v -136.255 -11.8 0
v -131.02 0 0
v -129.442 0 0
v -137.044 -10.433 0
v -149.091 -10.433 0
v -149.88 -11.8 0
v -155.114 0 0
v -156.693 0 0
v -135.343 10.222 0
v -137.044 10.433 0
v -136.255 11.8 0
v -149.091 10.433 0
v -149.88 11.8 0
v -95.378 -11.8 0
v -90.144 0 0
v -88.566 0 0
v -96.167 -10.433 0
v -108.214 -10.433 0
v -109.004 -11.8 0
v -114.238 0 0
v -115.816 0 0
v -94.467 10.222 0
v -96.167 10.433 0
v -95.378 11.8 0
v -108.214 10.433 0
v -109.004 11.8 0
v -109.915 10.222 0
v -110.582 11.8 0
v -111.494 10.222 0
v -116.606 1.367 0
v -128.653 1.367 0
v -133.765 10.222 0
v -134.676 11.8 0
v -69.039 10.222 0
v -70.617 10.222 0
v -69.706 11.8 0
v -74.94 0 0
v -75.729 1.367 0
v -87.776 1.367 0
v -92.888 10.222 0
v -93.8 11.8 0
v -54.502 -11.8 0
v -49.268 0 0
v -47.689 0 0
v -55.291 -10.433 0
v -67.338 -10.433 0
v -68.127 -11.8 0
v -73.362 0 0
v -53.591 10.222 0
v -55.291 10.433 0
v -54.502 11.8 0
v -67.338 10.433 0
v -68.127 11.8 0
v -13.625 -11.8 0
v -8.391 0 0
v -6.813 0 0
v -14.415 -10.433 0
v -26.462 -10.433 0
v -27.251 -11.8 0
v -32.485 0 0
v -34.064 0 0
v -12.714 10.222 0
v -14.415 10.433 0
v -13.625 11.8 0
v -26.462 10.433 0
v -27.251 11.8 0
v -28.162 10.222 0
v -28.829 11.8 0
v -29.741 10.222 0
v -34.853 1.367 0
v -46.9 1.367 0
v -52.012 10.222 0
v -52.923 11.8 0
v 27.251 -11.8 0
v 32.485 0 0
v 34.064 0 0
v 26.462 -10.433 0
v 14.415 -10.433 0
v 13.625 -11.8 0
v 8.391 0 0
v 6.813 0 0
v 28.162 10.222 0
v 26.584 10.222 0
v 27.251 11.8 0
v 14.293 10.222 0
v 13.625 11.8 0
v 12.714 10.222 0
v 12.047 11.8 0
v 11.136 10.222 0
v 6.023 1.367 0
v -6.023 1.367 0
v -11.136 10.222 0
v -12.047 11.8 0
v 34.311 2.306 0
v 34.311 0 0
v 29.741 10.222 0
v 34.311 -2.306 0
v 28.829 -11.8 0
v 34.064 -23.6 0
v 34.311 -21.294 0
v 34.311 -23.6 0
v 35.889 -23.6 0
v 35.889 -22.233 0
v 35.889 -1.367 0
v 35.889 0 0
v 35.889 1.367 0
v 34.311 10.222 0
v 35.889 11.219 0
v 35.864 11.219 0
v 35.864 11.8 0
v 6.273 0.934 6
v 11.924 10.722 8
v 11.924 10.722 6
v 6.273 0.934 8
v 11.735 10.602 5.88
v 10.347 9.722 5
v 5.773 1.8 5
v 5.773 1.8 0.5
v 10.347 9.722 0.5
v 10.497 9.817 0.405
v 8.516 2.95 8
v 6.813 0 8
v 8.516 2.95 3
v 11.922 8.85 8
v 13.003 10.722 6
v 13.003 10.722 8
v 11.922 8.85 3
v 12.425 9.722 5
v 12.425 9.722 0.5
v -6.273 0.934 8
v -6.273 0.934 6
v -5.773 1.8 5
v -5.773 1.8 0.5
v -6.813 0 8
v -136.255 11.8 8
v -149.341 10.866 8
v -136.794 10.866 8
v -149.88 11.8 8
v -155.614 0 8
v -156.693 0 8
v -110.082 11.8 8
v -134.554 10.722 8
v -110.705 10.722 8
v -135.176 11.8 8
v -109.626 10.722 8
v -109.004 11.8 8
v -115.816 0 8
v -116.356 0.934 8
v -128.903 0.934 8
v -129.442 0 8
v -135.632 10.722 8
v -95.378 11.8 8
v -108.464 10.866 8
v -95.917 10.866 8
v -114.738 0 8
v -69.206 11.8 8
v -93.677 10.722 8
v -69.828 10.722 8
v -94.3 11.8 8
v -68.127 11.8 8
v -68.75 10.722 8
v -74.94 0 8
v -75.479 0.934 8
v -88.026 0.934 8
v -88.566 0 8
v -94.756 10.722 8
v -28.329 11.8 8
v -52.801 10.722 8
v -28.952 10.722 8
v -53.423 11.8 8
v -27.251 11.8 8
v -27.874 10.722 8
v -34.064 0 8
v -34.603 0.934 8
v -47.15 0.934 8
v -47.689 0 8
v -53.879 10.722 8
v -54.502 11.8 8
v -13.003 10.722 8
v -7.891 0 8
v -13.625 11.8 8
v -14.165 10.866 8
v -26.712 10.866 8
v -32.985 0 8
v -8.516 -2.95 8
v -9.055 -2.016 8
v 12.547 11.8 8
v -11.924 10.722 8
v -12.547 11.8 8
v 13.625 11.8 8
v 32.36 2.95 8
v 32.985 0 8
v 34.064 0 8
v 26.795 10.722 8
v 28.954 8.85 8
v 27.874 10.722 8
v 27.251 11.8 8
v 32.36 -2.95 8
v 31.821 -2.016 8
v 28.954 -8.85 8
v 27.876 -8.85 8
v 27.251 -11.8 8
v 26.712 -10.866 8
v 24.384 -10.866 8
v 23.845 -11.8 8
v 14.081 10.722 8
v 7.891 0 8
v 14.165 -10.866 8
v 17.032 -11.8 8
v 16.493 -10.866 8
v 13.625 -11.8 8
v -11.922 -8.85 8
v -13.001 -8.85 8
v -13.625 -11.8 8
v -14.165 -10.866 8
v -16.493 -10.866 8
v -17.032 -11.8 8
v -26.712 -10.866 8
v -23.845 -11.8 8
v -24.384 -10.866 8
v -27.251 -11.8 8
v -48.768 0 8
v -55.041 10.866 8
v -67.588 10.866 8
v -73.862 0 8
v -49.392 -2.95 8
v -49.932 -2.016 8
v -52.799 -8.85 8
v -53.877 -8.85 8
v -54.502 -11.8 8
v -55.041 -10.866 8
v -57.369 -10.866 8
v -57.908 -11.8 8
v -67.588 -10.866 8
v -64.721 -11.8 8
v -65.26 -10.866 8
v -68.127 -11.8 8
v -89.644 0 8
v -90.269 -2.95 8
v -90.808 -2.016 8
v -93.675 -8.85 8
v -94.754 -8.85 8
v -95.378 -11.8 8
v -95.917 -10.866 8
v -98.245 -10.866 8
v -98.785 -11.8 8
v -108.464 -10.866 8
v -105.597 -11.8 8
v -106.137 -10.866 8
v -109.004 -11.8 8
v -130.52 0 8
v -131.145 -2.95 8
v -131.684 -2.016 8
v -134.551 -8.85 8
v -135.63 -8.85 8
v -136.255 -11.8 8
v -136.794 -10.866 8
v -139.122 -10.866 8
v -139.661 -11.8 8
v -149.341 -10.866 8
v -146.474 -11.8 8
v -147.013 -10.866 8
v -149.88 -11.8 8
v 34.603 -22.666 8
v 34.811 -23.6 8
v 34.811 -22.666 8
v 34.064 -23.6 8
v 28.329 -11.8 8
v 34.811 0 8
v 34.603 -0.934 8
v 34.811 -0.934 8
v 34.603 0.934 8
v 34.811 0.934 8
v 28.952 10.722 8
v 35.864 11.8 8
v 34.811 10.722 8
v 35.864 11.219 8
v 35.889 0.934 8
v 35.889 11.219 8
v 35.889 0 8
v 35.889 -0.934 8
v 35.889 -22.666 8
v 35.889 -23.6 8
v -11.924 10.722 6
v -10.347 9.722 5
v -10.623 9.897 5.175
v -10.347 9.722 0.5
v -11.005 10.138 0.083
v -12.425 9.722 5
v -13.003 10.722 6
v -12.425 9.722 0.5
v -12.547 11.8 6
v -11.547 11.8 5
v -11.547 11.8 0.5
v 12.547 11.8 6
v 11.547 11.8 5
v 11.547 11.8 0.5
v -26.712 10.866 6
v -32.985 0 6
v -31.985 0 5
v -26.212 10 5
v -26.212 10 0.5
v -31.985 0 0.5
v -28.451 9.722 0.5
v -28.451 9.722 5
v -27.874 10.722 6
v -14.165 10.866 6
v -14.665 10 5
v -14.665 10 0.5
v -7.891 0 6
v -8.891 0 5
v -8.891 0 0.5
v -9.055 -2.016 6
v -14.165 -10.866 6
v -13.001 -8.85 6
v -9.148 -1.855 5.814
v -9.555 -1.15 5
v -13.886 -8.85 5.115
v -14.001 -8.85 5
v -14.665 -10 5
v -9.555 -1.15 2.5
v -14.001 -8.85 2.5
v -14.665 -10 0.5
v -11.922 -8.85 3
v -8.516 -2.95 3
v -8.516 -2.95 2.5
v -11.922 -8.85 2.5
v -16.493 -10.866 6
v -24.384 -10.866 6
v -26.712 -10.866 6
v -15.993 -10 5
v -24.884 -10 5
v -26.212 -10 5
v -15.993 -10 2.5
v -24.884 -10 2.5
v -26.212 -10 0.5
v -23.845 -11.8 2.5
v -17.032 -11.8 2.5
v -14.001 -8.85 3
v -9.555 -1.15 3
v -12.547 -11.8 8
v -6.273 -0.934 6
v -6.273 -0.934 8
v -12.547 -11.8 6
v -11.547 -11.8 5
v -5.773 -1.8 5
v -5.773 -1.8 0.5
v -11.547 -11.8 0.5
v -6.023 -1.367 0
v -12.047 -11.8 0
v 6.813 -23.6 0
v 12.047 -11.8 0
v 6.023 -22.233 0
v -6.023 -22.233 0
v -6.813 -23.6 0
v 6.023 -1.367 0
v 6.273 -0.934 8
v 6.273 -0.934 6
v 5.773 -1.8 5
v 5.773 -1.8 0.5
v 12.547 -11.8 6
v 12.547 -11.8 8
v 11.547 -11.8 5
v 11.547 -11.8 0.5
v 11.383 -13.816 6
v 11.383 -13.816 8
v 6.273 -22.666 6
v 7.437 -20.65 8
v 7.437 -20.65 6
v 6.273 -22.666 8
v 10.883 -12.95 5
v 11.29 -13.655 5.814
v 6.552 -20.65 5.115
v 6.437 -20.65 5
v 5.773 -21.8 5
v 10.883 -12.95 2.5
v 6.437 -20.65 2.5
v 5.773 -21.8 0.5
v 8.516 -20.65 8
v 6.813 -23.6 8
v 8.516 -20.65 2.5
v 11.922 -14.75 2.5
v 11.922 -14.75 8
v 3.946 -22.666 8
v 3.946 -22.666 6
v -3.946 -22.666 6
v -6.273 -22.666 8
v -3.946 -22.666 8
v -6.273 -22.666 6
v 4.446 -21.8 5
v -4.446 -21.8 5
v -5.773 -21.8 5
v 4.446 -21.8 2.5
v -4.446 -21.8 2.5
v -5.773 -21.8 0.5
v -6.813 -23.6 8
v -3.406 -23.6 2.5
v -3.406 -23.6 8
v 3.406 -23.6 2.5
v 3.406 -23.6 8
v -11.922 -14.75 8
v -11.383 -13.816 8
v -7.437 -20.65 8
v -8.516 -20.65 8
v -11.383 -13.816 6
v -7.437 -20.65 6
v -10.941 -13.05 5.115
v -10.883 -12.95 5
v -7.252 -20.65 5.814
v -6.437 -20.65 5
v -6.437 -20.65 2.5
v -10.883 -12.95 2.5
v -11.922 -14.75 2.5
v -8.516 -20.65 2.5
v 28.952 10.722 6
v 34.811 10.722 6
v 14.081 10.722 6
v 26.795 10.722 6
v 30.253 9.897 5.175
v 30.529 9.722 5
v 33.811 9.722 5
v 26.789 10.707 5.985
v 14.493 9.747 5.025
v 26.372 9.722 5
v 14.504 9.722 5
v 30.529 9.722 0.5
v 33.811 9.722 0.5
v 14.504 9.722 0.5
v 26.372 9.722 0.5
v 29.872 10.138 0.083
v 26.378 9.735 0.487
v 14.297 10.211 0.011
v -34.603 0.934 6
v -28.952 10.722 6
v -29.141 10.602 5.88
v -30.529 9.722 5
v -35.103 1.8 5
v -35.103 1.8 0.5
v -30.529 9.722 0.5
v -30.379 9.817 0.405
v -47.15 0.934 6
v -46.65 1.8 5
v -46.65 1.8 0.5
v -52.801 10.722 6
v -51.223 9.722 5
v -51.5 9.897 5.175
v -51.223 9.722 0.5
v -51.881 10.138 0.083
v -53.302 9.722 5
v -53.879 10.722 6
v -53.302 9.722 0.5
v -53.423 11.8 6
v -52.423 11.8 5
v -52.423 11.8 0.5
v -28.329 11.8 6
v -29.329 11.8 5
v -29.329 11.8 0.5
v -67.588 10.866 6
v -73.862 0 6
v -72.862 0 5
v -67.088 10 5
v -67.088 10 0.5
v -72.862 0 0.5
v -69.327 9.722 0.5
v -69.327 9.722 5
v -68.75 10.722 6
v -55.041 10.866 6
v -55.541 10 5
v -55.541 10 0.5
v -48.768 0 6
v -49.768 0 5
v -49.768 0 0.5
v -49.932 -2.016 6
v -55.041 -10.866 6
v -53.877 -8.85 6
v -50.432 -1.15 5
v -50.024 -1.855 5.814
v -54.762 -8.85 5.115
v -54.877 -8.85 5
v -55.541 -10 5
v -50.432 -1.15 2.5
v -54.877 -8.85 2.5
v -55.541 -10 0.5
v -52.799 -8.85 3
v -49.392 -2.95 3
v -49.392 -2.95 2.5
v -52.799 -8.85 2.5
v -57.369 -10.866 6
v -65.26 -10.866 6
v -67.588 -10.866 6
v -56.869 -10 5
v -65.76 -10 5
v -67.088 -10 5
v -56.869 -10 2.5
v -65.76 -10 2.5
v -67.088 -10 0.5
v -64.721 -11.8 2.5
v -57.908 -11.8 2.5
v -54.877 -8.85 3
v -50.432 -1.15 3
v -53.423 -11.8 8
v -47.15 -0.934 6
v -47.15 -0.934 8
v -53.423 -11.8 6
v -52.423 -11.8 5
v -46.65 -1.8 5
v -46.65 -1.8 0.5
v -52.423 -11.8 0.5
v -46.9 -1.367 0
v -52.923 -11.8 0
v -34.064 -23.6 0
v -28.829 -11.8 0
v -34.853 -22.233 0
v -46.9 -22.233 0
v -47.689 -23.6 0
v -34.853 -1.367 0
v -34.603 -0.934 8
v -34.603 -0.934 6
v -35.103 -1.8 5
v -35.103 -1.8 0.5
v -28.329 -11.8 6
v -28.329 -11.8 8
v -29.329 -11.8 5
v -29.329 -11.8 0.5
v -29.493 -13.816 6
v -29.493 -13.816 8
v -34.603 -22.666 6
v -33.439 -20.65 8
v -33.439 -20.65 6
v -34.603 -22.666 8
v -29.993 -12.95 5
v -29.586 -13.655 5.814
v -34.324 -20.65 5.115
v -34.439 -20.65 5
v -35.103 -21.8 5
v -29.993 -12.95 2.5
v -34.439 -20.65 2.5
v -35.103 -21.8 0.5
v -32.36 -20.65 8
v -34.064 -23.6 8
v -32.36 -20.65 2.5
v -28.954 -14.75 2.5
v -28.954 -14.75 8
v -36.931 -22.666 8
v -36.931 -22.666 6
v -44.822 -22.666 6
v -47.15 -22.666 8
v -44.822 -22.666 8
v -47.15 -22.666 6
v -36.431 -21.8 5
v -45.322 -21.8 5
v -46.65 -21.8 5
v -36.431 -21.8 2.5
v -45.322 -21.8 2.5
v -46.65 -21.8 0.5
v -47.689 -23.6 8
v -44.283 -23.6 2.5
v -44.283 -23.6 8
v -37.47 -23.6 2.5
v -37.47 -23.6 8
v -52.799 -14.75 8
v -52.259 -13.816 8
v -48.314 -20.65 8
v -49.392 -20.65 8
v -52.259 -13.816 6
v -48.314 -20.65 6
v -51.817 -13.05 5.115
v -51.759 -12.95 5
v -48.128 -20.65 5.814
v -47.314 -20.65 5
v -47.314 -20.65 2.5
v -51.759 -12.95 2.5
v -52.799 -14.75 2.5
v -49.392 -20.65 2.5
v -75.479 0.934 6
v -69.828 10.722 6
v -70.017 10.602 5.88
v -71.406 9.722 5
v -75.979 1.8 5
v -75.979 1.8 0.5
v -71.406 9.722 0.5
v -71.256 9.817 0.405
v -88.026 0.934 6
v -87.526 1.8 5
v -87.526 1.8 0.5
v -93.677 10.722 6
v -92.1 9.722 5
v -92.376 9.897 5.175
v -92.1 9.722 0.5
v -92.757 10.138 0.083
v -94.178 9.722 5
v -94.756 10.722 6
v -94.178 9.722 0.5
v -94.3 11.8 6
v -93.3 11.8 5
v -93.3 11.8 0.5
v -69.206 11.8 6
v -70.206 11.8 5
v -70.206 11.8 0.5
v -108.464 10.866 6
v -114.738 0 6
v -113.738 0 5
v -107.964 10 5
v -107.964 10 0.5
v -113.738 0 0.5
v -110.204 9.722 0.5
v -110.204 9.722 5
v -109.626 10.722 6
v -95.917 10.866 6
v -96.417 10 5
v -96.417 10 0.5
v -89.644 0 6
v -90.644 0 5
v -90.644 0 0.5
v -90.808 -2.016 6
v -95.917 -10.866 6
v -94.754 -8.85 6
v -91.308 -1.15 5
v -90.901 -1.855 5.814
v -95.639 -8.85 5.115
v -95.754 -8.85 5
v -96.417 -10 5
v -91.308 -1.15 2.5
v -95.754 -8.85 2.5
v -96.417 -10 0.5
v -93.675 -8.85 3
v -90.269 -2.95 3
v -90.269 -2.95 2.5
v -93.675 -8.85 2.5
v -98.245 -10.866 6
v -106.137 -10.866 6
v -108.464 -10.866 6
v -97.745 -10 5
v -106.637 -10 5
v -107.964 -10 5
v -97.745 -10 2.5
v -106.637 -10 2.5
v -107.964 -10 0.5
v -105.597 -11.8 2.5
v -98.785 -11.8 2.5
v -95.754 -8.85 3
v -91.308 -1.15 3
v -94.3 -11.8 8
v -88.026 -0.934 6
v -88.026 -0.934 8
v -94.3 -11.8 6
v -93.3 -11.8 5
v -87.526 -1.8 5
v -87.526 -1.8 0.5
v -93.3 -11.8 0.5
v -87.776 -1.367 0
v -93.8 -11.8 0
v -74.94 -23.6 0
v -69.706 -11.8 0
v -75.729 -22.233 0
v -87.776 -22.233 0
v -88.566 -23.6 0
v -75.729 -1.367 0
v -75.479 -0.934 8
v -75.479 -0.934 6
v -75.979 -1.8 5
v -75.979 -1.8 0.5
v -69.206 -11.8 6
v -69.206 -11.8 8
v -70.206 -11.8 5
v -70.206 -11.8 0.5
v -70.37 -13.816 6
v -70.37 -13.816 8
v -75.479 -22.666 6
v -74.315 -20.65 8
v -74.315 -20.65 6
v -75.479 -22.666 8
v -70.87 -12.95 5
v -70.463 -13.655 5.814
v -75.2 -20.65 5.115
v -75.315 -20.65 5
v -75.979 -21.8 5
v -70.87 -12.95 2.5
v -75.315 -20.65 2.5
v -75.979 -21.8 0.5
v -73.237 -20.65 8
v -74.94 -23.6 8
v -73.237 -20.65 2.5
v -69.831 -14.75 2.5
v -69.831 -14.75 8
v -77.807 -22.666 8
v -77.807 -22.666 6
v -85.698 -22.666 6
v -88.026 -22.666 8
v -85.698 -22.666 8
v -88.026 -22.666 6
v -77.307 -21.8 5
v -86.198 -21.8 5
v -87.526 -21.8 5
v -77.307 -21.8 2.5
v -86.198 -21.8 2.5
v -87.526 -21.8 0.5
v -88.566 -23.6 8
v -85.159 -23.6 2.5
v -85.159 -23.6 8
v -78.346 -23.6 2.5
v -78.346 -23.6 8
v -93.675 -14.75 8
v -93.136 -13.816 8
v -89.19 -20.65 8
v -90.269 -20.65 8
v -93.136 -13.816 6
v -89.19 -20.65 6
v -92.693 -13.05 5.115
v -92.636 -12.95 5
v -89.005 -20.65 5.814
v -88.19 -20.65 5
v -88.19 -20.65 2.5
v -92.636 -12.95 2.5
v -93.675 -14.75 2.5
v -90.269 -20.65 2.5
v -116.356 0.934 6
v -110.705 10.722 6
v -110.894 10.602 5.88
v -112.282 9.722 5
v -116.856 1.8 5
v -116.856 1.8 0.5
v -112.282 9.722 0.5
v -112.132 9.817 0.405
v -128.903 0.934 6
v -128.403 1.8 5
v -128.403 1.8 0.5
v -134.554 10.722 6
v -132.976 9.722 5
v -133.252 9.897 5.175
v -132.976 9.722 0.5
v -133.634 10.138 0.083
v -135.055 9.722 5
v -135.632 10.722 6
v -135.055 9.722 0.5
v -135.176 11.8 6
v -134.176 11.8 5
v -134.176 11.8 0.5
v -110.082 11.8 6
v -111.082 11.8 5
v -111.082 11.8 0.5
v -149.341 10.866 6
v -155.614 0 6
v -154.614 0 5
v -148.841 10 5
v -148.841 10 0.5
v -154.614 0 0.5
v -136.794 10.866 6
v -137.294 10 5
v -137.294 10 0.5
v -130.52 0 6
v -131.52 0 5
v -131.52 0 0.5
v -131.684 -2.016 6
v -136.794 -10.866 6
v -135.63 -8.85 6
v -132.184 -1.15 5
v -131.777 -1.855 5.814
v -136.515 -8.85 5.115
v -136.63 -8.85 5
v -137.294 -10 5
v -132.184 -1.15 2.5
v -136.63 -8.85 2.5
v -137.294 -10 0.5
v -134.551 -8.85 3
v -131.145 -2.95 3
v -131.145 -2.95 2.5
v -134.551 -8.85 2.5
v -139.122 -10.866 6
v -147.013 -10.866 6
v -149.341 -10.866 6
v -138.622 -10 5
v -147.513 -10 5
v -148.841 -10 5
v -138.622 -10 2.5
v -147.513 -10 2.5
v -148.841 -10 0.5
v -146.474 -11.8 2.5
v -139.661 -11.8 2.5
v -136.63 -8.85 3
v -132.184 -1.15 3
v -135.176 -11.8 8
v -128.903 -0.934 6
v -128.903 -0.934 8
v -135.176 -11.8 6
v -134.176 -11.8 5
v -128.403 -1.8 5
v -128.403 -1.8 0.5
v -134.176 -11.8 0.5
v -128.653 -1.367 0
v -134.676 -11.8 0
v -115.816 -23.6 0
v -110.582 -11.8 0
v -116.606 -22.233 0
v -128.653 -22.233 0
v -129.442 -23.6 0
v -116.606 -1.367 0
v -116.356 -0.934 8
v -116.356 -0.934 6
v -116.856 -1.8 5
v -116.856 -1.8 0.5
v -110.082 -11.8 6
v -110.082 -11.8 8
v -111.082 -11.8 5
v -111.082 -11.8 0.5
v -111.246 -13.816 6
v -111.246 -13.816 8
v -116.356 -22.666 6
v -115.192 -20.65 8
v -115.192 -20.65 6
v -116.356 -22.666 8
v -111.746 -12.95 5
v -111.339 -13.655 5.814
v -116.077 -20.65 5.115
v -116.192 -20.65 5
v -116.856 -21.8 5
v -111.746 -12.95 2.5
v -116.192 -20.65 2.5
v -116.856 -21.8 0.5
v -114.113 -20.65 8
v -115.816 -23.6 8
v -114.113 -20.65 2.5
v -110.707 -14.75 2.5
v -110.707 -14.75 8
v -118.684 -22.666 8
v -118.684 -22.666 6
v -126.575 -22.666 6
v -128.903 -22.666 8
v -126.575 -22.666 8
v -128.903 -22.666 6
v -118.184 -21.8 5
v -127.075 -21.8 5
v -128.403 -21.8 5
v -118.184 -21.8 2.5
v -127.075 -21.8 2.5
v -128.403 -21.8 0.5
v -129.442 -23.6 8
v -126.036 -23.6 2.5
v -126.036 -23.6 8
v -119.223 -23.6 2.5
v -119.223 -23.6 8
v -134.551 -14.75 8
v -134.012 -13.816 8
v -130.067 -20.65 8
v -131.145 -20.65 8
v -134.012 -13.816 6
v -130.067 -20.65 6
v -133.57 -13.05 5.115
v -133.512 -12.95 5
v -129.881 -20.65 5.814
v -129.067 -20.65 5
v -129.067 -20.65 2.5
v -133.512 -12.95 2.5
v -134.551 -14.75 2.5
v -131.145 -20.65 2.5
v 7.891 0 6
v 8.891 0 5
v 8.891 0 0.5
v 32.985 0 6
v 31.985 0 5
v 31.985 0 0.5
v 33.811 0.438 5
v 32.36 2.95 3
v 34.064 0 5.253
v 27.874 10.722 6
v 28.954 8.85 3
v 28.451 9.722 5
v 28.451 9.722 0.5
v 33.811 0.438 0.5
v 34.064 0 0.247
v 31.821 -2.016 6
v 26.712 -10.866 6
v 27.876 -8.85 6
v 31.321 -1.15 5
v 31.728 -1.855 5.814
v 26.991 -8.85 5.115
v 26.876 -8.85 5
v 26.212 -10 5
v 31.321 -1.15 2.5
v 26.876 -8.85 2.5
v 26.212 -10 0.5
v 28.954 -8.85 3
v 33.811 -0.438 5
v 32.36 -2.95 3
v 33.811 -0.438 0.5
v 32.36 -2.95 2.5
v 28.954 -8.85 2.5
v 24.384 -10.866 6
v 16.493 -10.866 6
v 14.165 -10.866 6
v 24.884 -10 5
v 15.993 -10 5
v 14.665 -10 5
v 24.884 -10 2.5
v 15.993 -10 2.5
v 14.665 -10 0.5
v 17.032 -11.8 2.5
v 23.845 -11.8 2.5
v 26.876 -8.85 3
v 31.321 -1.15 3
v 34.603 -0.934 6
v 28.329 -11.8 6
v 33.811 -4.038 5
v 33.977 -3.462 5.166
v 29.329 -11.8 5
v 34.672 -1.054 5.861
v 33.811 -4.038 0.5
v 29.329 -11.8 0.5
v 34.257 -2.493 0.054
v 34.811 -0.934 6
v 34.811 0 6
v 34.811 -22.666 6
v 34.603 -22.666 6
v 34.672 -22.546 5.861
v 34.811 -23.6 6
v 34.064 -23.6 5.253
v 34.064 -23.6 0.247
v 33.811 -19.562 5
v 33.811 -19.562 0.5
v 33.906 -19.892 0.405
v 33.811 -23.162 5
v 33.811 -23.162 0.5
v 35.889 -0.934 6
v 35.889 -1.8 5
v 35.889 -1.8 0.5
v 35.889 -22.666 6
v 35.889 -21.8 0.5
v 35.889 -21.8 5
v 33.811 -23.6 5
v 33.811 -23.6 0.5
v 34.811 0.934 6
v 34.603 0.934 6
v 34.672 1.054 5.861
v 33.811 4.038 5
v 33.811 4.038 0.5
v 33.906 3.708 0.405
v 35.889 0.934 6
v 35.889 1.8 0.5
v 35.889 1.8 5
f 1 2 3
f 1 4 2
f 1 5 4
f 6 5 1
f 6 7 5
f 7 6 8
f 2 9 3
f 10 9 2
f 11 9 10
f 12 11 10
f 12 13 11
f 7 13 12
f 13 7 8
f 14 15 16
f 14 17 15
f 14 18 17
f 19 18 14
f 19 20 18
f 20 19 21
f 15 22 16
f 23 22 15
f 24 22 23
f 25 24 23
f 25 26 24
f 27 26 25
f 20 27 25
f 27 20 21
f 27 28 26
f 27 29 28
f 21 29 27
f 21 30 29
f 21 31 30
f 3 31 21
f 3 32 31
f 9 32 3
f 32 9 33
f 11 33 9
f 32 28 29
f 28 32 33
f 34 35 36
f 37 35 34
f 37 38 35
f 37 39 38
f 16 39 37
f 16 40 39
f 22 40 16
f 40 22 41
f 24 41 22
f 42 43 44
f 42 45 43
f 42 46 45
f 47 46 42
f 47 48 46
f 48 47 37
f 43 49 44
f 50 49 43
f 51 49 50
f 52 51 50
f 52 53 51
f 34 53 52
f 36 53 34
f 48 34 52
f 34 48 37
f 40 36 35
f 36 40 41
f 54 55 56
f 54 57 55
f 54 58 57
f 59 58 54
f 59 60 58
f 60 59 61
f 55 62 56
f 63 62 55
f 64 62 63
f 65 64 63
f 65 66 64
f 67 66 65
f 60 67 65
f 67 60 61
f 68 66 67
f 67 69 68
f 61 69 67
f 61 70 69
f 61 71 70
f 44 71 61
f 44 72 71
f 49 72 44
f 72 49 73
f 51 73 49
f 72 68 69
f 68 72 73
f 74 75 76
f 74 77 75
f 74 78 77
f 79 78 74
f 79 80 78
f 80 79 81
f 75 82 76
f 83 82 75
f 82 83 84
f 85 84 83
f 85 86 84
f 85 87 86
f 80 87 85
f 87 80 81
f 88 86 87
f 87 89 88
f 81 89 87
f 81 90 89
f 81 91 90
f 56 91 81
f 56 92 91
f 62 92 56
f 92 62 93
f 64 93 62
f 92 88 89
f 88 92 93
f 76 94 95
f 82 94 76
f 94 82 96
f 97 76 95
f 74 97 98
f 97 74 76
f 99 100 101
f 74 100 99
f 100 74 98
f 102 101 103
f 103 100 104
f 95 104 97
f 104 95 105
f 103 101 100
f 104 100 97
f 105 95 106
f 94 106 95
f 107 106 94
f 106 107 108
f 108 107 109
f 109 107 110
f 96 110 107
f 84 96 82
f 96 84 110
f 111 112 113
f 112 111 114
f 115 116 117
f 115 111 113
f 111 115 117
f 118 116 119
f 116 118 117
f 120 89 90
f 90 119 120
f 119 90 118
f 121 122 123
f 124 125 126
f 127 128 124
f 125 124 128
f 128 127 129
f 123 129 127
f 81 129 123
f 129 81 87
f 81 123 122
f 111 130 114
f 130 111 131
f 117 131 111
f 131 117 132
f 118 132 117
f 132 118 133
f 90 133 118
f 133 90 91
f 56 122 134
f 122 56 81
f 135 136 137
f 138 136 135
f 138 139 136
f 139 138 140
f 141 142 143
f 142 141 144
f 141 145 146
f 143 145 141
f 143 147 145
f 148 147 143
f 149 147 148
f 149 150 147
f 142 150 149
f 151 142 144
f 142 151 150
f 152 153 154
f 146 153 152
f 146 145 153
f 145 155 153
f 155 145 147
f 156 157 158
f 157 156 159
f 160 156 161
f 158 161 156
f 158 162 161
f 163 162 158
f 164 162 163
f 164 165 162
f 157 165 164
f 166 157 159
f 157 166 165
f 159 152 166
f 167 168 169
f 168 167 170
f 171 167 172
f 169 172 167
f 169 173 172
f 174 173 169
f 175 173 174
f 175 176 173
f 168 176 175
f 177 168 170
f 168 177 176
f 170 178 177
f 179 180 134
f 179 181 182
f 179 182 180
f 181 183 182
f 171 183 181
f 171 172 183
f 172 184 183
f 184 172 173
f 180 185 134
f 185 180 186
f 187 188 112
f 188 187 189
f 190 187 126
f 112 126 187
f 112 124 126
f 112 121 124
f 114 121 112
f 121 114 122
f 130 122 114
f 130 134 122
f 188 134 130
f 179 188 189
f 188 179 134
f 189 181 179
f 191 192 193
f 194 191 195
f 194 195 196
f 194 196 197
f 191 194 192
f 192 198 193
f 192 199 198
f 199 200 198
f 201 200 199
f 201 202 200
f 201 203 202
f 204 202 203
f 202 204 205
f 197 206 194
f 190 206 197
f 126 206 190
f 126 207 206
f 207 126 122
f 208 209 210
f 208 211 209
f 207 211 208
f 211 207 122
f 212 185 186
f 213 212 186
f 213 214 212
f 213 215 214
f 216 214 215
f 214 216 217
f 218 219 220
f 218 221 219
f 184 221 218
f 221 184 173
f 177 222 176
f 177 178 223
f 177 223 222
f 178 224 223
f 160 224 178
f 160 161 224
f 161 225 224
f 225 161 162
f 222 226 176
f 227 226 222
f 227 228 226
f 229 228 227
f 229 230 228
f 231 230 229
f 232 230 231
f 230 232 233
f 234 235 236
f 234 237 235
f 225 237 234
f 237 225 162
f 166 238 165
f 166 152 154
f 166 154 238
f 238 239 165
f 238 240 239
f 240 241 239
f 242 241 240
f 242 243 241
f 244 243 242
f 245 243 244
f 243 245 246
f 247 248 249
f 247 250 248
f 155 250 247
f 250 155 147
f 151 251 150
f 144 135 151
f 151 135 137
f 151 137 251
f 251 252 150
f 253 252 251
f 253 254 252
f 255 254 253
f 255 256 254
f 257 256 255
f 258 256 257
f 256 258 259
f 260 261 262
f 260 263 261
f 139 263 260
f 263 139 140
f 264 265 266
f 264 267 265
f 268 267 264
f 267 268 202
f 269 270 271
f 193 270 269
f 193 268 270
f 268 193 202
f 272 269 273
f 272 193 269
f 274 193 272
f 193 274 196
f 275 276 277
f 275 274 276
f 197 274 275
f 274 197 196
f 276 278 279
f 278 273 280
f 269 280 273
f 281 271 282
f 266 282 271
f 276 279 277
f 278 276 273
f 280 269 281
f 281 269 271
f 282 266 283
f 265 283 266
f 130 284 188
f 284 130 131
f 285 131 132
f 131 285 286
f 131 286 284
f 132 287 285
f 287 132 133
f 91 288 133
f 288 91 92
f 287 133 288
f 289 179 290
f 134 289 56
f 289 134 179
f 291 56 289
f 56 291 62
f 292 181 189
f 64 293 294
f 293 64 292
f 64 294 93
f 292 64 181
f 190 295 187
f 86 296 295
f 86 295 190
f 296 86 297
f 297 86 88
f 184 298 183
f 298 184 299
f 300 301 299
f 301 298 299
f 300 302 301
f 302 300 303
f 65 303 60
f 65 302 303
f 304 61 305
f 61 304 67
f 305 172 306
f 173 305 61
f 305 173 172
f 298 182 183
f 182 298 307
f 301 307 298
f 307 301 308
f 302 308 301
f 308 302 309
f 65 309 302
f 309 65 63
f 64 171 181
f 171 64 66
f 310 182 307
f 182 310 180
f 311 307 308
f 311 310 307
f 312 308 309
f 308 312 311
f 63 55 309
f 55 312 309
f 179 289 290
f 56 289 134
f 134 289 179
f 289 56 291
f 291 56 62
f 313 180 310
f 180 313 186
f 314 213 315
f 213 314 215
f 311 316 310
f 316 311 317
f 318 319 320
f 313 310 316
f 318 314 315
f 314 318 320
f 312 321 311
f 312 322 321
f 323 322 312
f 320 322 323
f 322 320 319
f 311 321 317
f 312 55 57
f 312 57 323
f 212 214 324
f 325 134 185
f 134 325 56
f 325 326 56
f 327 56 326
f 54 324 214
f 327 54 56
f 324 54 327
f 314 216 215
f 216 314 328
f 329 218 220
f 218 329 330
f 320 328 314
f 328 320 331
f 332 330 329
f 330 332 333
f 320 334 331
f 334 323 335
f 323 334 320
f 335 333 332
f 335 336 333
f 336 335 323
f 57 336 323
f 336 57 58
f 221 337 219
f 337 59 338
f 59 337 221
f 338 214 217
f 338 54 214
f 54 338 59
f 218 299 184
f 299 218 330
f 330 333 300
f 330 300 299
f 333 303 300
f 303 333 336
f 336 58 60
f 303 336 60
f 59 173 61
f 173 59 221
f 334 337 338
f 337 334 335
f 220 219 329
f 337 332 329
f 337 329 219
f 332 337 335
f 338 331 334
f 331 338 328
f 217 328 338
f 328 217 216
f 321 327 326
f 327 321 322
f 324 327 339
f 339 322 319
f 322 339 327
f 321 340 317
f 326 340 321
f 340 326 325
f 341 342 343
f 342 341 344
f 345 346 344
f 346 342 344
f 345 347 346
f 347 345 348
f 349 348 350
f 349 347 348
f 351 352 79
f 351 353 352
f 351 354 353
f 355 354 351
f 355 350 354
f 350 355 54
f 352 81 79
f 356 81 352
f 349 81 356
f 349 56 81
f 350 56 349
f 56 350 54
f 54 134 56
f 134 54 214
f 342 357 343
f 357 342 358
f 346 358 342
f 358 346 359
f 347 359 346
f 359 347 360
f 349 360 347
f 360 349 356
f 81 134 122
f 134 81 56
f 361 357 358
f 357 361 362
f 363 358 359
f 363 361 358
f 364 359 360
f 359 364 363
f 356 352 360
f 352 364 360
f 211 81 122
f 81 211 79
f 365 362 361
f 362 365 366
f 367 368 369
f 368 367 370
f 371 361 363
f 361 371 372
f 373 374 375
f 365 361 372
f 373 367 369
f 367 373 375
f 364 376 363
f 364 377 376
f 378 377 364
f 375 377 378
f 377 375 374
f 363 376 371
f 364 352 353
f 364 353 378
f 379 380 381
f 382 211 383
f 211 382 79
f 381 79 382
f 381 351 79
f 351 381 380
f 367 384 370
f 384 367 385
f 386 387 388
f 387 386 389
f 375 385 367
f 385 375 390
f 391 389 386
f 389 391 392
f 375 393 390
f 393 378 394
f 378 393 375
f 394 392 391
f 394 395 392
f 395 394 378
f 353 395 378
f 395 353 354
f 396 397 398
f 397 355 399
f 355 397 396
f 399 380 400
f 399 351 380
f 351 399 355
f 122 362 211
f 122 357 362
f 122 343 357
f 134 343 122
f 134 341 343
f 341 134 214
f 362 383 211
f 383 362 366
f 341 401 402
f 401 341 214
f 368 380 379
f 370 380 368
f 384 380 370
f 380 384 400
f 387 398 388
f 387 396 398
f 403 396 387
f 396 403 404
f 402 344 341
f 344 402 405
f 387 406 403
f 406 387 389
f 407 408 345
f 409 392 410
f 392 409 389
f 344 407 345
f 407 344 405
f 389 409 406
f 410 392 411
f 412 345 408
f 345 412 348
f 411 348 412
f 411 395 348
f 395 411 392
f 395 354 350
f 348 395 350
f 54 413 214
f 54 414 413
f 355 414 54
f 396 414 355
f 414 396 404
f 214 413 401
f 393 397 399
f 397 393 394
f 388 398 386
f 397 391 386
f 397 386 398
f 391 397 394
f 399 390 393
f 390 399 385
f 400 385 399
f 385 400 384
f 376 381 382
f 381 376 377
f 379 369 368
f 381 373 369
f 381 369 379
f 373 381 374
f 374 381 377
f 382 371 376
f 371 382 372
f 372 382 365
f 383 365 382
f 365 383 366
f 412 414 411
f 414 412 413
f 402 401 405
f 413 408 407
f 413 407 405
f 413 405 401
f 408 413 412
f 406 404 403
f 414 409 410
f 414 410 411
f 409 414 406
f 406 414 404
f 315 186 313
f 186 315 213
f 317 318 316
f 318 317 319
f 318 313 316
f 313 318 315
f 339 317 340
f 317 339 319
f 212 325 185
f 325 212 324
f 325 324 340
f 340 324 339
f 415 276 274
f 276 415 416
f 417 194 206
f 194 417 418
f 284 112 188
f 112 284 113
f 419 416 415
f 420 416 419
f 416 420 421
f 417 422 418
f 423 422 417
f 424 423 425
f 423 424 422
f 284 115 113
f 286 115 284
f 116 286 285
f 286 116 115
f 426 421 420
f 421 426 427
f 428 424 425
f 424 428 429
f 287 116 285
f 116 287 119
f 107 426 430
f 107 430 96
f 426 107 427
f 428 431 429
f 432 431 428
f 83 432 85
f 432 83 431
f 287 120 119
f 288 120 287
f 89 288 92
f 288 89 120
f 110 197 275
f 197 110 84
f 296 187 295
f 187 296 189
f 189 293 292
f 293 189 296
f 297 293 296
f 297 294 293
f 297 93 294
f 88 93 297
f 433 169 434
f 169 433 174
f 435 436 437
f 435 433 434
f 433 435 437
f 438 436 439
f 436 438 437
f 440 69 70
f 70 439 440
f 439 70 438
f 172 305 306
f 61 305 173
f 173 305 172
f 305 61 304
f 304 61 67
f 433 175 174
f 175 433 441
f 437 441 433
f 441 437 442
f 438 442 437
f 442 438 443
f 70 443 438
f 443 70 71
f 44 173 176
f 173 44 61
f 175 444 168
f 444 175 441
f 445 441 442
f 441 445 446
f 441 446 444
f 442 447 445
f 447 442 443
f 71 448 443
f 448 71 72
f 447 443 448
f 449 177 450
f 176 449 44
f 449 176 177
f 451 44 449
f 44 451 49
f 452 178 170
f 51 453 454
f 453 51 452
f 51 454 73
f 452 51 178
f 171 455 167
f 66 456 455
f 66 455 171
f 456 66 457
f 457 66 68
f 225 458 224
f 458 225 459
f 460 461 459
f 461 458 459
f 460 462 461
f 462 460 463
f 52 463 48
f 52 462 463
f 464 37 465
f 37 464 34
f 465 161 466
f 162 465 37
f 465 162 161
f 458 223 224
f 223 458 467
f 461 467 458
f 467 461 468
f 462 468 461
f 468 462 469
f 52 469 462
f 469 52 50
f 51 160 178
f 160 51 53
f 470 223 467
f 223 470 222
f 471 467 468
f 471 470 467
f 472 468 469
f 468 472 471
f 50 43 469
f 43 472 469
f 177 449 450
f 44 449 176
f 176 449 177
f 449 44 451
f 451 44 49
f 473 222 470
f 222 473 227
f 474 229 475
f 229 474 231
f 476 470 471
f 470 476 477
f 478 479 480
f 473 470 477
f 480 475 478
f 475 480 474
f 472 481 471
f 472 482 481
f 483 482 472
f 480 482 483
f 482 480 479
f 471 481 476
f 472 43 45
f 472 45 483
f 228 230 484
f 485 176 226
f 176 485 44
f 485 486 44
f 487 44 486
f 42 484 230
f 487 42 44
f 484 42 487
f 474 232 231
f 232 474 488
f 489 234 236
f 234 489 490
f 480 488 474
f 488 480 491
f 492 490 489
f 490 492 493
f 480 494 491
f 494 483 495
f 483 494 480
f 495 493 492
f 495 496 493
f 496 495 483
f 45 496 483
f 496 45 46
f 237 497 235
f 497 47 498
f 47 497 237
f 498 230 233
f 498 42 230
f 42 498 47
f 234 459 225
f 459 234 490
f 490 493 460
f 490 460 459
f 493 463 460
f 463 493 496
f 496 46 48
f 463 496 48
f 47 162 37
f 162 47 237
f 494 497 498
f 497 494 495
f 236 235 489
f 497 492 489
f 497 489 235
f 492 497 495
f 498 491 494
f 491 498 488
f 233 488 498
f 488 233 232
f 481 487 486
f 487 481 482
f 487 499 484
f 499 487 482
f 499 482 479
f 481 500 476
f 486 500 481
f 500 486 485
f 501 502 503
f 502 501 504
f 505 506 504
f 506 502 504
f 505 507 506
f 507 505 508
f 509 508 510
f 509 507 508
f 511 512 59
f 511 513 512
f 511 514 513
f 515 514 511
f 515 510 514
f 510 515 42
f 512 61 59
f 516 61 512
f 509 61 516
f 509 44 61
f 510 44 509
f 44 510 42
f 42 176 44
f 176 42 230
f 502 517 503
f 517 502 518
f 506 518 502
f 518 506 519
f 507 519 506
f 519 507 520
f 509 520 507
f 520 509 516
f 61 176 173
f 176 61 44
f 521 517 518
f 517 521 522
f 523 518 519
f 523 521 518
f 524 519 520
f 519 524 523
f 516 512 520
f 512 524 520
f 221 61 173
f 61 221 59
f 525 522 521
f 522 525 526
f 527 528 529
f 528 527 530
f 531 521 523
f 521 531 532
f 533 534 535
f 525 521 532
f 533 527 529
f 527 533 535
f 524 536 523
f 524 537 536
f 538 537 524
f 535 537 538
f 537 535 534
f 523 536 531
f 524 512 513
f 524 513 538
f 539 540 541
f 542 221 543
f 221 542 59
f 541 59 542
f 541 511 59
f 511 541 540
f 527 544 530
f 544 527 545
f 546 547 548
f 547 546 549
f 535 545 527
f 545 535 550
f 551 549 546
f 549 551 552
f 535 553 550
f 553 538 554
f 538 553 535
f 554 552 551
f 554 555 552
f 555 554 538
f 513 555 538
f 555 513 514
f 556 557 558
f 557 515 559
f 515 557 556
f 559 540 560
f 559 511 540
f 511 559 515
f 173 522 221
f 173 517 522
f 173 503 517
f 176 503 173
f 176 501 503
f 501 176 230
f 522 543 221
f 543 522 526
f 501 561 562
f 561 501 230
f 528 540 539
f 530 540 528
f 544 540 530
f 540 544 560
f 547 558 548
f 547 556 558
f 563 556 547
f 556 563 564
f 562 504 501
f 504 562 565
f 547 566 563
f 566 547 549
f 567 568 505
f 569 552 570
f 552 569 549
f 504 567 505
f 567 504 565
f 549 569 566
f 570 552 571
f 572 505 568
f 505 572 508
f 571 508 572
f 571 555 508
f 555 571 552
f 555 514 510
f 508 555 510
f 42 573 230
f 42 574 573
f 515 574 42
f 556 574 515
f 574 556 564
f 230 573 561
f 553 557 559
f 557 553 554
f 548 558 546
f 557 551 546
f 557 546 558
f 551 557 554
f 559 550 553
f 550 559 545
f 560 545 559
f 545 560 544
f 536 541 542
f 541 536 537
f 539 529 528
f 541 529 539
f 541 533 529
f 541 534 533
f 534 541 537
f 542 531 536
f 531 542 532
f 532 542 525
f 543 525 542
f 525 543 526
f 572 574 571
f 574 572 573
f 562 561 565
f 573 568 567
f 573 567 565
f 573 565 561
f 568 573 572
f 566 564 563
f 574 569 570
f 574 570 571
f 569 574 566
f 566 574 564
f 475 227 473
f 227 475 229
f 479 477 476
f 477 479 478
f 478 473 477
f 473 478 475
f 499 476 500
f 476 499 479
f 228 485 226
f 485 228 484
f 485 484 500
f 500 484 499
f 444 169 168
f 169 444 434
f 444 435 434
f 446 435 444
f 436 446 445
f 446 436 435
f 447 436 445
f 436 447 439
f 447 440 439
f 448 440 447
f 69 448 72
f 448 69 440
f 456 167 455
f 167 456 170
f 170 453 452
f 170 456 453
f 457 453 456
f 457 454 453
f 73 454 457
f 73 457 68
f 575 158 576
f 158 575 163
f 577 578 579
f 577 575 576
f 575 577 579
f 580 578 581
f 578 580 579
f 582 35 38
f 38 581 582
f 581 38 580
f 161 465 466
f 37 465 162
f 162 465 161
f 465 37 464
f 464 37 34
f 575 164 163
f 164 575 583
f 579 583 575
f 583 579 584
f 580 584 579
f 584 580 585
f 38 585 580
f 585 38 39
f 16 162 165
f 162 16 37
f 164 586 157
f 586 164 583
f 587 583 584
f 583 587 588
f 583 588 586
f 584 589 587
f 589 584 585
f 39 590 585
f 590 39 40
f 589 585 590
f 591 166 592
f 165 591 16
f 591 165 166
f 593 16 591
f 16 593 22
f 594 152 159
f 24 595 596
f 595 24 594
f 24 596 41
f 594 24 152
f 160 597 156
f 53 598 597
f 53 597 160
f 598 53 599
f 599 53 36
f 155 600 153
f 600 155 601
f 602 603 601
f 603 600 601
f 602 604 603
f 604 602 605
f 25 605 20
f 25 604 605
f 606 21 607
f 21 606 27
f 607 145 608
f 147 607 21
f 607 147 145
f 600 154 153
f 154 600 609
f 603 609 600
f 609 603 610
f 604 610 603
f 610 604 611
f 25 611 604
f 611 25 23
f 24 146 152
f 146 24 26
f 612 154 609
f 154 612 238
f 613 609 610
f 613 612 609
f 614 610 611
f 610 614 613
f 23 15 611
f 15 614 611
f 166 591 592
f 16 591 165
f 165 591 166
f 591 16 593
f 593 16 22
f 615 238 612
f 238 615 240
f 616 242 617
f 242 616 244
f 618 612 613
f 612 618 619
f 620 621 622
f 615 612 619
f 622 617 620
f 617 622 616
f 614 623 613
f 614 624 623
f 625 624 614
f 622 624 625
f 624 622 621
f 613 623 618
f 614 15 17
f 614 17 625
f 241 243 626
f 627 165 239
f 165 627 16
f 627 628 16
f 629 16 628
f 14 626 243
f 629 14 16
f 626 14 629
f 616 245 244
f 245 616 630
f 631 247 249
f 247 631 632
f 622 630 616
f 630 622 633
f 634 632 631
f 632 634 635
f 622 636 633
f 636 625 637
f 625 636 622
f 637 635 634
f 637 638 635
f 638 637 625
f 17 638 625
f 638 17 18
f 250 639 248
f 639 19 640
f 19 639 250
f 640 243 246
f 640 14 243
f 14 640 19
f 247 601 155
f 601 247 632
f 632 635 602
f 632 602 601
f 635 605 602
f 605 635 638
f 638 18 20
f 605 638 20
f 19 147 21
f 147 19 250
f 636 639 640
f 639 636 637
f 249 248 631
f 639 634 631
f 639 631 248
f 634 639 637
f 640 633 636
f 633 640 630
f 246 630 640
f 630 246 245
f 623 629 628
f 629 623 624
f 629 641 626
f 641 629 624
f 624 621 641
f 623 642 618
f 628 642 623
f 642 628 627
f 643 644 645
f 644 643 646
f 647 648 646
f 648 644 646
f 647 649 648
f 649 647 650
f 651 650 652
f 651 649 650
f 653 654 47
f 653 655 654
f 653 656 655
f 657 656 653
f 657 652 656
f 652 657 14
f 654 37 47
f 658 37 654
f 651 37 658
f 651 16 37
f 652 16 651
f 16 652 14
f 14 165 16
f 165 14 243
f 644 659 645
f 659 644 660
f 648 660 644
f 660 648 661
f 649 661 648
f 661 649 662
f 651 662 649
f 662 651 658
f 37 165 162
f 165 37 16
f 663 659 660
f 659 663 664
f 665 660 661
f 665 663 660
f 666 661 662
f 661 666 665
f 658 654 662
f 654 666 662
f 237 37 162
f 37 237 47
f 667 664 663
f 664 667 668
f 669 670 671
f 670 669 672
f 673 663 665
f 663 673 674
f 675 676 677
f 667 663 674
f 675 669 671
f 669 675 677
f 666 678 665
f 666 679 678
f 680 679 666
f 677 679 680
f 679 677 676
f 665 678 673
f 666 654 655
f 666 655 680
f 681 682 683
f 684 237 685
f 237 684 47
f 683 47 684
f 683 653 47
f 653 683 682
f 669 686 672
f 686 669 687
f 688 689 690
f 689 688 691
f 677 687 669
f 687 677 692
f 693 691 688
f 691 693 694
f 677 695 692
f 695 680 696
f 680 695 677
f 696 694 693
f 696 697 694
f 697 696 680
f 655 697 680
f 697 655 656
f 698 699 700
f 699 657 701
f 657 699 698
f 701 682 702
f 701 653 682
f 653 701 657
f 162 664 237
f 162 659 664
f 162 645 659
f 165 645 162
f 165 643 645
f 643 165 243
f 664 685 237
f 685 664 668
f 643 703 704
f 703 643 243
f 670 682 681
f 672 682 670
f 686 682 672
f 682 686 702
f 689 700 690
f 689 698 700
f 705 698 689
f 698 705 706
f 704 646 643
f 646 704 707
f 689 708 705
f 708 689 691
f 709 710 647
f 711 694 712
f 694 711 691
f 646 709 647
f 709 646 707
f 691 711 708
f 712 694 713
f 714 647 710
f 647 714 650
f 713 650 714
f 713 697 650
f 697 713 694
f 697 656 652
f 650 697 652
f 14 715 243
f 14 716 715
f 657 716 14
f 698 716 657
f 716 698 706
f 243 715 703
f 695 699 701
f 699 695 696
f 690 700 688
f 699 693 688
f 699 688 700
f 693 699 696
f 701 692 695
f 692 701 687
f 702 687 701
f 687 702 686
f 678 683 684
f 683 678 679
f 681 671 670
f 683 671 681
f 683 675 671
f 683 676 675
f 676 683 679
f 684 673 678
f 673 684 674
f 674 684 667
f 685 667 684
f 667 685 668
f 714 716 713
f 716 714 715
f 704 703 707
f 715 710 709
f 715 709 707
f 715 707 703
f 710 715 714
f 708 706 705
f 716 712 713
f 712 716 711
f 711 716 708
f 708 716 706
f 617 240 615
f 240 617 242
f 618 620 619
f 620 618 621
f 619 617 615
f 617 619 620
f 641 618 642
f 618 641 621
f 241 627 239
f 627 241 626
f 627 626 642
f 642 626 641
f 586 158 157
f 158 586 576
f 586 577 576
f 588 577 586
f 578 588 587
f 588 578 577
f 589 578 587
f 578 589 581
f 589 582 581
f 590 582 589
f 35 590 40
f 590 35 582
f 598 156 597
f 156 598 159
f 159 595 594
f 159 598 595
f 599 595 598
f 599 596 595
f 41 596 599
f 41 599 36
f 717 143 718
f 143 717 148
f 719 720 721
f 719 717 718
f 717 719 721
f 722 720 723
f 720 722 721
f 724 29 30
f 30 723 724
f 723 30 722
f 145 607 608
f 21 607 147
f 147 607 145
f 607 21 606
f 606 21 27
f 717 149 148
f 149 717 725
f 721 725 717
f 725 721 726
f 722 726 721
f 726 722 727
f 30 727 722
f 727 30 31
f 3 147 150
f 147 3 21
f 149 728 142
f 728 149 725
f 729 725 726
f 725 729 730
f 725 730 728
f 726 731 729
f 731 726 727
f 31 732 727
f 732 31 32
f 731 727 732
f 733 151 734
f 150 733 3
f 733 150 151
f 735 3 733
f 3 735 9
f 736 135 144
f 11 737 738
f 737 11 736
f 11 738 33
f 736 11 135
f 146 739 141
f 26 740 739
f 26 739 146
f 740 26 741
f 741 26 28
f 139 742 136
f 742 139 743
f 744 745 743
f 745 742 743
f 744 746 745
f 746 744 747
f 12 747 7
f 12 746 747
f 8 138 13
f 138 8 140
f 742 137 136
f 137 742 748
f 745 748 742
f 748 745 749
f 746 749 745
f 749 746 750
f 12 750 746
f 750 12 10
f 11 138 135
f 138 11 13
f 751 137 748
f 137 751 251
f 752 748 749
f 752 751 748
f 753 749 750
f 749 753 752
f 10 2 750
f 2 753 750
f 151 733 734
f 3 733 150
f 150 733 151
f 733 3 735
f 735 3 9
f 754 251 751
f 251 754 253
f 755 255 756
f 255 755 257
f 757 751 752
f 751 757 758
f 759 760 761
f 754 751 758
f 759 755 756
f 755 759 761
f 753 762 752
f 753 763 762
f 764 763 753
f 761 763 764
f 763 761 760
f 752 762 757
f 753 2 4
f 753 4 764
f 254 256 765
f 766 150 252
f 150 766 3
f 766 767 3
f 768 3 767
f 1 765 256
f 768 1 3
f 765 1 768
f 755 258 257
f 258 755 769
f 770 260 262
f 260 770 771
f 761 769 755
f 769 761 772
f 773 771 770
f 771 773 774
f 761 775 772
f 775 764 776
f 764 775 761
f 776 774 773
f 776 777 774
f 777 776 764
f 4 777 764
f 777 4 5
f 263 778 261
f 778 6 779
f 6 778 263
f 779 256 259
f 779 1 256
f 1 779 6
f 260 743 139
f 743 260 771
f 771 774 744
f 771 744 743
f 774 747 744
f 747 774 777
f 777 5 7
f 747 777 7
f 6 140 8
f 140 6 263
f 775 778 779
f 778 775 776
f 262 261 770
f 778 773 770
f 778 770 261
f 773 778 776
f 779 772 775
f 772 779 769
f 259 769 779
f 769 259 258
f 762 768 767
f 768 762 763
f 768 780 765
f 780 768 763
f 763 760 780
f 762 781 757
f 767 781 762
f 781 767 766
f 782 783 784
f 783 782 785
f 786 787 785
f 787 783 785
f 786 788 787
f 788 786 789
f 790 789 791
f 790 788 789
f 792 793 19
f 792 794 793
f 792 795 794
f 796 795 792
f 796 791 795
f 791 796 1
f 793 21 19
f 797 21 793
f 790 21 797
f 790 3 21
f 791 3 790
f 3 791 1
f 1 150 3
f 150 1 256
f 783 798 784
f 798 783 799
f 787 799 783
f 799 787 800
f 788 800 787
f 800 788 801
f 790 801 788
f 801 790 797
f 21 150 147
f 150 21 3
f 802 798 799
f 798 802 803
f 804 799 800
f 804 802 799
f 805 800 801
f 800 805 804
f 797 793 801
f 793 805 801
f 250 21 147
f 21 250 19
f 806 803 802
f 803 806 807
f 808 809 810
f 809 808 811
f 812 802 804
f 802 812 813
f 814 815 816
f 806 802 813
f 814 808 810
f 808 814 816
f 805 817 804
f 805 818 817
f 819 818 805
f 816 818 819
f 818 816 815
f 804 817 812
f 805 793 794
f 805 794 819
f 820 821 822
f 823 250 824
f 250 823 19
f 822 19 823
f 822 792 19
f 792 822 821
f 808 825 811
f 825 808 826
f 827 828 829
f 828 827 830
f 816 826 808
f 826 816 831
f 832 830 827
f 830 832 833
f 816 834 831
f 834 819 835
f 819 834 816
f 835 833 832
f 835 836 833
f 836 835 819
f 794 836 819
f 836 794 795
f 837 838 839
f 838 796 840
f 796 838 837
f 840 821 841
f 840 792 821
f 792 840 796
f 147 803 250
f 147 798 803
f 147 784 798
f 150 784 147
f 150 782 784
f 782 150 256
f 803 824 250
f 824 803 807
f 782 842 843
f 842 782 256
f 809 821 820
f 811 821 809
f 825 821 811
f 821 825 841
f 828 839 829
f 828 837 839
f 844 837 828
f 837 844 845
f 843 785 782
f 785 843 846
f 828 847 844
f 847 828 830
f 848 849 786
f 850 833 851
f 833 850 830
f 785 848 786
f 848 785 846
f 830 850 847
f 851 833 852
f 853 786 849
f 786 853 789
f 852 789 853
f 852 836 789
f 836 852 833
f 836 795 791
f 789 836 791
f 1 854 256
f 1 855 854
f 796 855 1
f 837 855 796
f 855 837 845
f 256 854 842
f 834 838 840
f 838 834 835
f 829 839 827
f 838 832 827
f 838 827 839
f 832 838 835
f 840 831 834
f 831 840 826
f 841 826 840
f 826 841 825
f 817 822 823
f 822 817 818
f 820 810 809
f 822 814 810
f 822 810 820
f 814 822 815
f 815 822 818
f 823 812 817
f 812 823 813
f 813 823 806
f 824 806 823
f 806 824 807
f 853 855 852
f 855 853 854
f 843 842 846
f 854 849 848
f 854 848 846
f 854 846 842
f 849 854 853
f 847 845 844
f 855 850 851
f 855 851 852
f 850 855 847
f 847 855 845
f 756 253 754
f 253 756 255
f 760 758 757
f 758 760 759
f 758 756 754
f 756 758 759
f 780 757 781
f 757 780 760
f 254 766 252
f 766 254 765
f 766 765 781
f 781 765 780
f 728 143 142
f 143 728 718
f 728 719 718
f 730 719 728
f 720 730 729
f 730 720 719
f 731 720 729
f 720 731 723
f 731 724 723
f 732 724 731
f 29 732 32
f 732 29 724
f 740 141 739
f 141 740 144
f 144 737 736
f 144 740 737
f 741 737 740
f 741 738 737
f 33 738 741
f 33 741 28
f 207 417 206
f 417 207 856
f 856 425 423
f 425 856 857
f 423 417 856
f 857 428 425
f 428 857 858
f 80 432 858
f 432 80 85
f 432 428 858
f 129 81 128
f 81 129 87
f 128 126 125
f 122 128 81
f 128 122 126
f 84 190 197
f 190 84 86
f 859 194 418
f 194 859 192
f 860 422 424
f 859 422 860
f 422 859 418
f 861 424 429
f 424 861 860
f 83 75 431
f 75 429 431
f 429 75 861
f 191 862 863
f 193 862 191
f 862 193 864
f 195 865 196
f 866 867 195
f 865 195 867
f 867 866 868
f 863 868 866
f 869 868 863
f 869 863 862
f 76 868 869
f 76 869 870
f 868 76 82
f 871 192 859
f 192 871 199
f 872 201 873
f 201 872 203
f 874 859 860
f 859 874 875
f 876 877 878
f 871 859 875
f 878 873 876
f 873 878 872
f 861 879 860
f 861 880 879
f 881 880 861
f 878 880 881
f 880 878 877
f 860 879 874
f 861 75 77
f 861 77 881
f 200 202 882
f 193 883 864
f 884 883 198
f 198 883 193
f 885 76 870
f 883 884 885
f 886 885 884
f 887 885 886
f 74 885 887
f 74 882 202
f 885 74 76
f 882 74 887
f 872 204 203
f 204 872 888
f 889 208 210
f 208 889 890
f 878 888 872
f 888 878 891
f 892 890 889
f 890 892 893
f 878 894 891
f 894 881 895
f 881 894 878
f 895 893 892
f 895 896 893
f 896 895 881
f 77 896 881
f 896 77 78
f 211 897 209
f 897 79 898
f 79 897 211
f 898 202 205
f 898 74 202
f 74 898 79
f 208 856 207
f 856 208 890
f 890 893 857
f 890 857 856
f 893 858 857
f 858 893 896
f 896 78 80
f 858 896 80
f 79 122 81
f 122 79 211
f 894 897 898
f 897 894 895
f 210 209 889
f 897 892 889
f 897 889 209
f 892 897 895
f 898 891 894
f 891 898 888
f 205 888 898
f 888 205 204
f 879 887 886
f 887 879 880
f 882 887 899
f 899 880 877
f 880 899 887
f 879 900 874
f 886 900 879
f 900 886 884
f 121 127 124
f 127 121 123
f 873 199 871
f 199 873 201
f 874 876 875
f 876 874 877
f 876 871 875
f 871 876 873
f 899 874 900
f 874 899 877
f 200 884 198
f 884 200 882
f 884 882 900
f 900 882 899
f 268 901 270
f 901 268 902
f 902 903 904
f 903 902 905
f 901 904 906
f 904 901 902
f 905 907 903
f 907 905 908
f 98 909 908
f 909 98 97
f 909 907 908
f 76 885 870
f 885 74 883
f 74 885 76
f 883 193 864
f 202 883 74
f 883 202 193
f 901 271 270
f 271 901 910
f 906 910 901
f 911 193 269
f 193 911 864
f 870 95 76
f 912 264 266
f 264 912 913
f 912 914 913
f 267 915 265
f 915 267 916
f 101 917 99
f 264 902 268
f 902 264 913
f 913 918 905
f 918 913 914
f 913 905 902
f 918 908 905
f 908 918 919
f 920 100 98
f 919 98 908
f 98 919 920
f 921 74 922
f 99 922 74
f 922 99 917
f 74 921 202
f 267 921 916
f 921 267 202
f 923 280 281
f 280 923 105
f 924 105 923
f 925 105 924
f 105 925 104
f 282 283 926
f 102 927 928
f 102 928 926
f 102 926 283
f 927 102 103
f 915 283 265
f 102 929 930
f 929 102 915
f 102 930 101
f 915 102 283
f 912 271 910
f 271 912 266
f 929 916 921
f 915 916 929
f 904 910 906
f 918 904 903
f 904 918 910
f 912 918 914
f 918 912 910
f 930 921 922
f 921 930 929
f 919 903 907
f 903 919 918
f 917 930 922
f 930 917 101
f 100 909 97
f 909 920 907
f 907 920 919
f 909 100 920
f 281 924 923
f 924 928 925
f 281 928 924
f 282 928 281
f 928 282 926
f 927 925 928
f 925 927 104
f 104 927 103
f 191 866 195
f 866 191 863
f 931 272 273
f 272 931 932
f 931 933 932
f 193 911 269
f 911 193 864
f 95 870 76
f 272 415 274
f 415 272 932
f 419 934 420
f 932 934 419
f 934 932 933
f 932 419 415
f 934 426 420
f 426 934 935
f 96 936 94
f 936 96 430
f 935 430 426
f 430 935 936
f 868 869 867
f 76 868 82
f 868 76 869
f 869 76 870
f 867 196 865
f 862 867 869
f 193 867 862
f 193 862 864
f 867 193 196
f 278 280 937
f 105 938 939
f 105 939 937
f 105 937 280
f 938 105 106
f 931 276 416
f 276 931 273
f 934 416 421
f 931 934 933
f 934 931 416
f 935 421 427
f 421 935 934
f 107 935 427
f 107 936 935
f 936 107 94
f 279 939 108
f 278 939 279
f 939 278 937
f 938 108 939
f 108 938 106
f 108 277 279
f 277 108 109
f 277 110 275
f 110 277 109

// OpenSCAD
// file: _honeycomb_element.scad
$fn = 50;

radius = 13.6;
diameter = radius * 2;

h_inner = 10;
r_inner = h_inner * 2 / sqrt(3);

h_outer = 10 + 1.8;
r_outer = h_outer * 2 / sqrt(3);

h_thin = 10 + 1;
r_thin = h_thin * 2 / sqrt(3);

total_height = 8;

small_value = 0.1;

clips_height = 5;
clips_offset = 0.5;
clips_side_offset = 0.00;

module basic_polygon() {
  polygon(
    [
      [r_outer, total_height],
      [r_outer, 0],
      [r_inner + 0.5, 0],
      [r_inner, 0.5],
      [r_inner, total_height - 3],
      [r_inner + 1, total_height - 2],
      [r_inner + 1, total_height],
    ]
  );
}

module basic_model() {
  rotate_extrude($fn=6) {
    basic_polygon();
  }
}

module panel_with_clips(pin_1 = false, pin_2 = false, pin_3 = false, pin_4 = false, pin_5 = false, pin_6 = false, slot_1 = false, slot_2 = false, slot_3 = false, slot_4 = false, slot_5 = false, slot_6 = false) {

  difference() {
    basic_model();

    if (slot_1) {
      rotate([0, 0, 0])
        translate([0, -h_outer * 2, total_height - (clips_height + clips_offset) / 2])
          linear_extrude(height=clips_height + clips_offset, center=true)
            polygon([[clips_side_offset, h_outer / 2], [-clips_side_offset, h_outer / 2], [-r_outer / 2 - clips_side_offset, h_outer * 1.5], [r_outer / 2 + clips_side_offset, h_outer * 1.5]]);
    }

    if (slot_2) {
      rotate([0, 0, 60])
        translate([0, -h_outer * 2, total_height - (clips_height + clips_offset) / 2])
          linear_extrude(height=clips_height + clips_offset, center=true)
            polygon([[clips_side_offset, h_outer / 2], [-clips_side_offset, h_outer / 2], [-r_outer / 2 - clips_side_offset, h_outer * 1.5], [r_outer / 2 + clips_side_offset, h_outer * 1.5]]);
    }

    if (slot_3) {
      rotate([0, 0, 120])
        translate([0, -h_outer * 2, total_height - (clips_height + clips_offset) / 2])
          linear_extrude(height=clips_height + clips_offset, center=true)
            polygon([[clips_side_offset, h_outer / 2], [-clips_side_offset, h_outer / 2], [-r_outer / 2 - clips_side_offset, h_outer * 1.5], [r_outer / 2 + clips_side_offset, h_outer * 1.5]]);
    }

    if (slot_4) {
      rotate([0, 0, 180])
        translate([0, -h_outer * 2, total_height - (clips_height + clips_offset) / 2])
          linear_extrude(height=clips_height + clips_offset, center=true)
            polygon([[clips_side_offset, h_outer / 2], [-clips_side_offset, h_outer / 2], [-r_outer / 2 - clips_side_offset, h_outer * 1.5], [r_outer / 2 + clips_side_offset, h_outer * 1.5]]);
    }

    if (slot_5) {
      rotate([0, 0, 240])
        translate([0, -h_outer * 2, total_height - (clips_height + clips_offset) / 2])
          linear_extrude(height=clips_height + clips_offset, center=true)
            polygon([[clips_side_offset, h_outer / 2], [-clips_side_offset, h_outer / 2], [-r_outer / 2 - clips_side_offset, h_outer * 1.5], [r_outer / 2 + clips_side_offset, h_outer * 1.5]]);
    }

    if (slot_6) {
      rotate([0, 0, 300])
        translate([0, -h_outer * 2, total_height - (clips_height + clips_offset) / 2])
          linear_extrude(height=clips_height + clips_offset, center=true)
            polygon([[clips_side_offset, h_outer / 2], [-clips_side_offset, h_outer / 2], [-r_outer / 2 - clips_side_offset, h_outer * 1.5], [r_outer / 2 + clips_side_offset, h_outer * 1.5]]);
    }
  }

  if (pin_1) {
    intersection() {
      translate([0, -h_outer * 2, 0])
        basic_model();
      translate([0, 0, total_height - clips_height / 2]) {
        rotate([0, 0, -180])
          linear_extrude(height=clips_height, center=true)
            polygon([[0, h_outer / 2], [-r_outer / 2, h_outer * 1.5], [r_outer / 2, h_outer * 1.5]]);
      }
    }
  }

  if (pin_2) {
    intersection() {
      translate([r_outer * 1.5, -h_outer, 0])
        basic_model();
      translate([0, 0, total_height - clips_height / 2]) {
        rotate([0, 0, -120])
          linear_extrude(height=clips_height, center=true)
            polygon([[0, h_outer / 2], [-r_outer / 2, h_outer * 1.5], [r_outer / 2, h_outer * 1.5]]);
      }
    }
  }

  if (pin_3) {
    intersection() {
      translate([r_outer * 1.5, h_outer, 0])
        basic_model();
      translate([0, 0, total_height - clips_height / 2]) {
        rotate([0, 0, -60])
          linear_extrude(height=clips_height, center=true)
            polygon([[0, h_outer / 2], [-r_outer / 2, h_outer * 1.5], [r_outer / 2, h_outer * 1.5]]);
      }
    }
  }

  if (pin_4) {
    intersection() {
      translate([0, h_outer * 2, 0])
        basic_model();

      translate([0, 0, total_height - clips_height / 2]) {
        linear_extrude(height=clips_height, center=true)
          polygon([[0, h_outer / 2], [-r_outer / 2, h_outer * 1.5], [r_outer / 2, h_outer * 1.5]]);
      }
    }
  }

  if (pin_5) {
    intersection() {
      translate([-r_outer * 1.5, h_outer, 0])
        basic_model();
      translate([0, 0, total_height - clips_height / 2]) {
        rotate([0, 0, 60])
          linear_extrude(height=clips_height, center=true)
            polygon([[0, h_outer / 2], [-r_outer / 2, h_outer * 1.5], [r_outer / 2, h_outer * 1.5]]);
      }
    }
  }

  if (pin_6) {
    intersection() {
      translate([-r_outer * 1.5, -h_outer, 0])
        basic_model();

      translate([0, 0, total_height - clips_height / 2]) {
        rotate([0, 0, 120])
          linear_extrude(height=clips_height, center=true)
            polygon([[0, h_outer / 2], [-r_outer / 2, h_outer * 1.5], [r_outer / 2, h_outer * 1.5]]);
      }
    }
  }
}

// end _honeycomb_element.scad
// main file
$fn = 50;

h_outer = 10 + 1.8;
r_outer = h_outer * 2 / sqrt(3);

use <_honeycomb_element.scad>;

module perimeter_top_item(left_slot = false, top_slot = false) {
  difference() {
    translate([0, h_outer, 0])
      panel_with_clips(slot_1=top_slot, slot_2=left_slot);

    translate([0, 50 + h_outer, 0])
      cube([100, 100, 100], center=true);
  }

  translate([-r_outer * 1.5, 0, 0])
    panel_with_clips(slot_1=true, slot_2=true, pin_5=false);

  translate([0, -h_outer, 0])
    panel_with_clips(slot_1=true, slot_2=true, slot_6=true, pin_5=true);

  translate([0, h_outer - r_outer, 0])
    rotate([90, 0, 90])
      linear_extrude(height=r_outer * 2, center=true)
        basic_polygon();
}

module perimeter_left_item(pin_5 = true, pin_6 = true) {
  difference() {
    translate([r_outer * 1.5, 0, 0])
      panel_with_clips(pin_6=pin_6, pin_5=pin_5);
    translate([50 + r_outer * 1.5 - r_outer / 2 + (r_outer - h_outer), 0, 0])
      cube([100, 100, 100], center=true);
  }
  translate([0 + r_outer - h_outer, 0, 0])
    rotate([90, 0, 0])
      linear_extrude(height=h_outer * 2, center=true)
        basic_polygon();
}

module perimeter_bottom() {
  perimeter_top_item();

  translate([-3 * r_outer, 0, 0])
    perimeter_top_item();

  translate([-6 * r_outer, 0, 0])
    perimeter_top_item();

  translate([-9 * r_outer, 0, 0])
    perimeter_top_item();

  translate([1.5 * r_outer, 0, 0])
    panel_with_clips(slot_1=true, slot_2=true, pin_5=true);

  translate([1.5 * r_outer, -h_outer, 0])
    perimeter_left_item(pin_6=false);

  difference() {
    translate([1.5 * r_outer, h_outer, 0])
      perimeter_left_item();

    translate([2 * r_outer, 1.5 * r_outer + 1, 0])
      cube([1.5 * r_outer, 1.5 * r_outer, 1.5 * r_outer], center=true);
  }

  translate([1.5 * r_outer + 1.8, h_outer - r_outer, 0])
    rotate([90, 0, 90])
      linear_extrude(height=r_outer * 2, center=true)
        basic_polygon();
}

perimeter_bottom();
